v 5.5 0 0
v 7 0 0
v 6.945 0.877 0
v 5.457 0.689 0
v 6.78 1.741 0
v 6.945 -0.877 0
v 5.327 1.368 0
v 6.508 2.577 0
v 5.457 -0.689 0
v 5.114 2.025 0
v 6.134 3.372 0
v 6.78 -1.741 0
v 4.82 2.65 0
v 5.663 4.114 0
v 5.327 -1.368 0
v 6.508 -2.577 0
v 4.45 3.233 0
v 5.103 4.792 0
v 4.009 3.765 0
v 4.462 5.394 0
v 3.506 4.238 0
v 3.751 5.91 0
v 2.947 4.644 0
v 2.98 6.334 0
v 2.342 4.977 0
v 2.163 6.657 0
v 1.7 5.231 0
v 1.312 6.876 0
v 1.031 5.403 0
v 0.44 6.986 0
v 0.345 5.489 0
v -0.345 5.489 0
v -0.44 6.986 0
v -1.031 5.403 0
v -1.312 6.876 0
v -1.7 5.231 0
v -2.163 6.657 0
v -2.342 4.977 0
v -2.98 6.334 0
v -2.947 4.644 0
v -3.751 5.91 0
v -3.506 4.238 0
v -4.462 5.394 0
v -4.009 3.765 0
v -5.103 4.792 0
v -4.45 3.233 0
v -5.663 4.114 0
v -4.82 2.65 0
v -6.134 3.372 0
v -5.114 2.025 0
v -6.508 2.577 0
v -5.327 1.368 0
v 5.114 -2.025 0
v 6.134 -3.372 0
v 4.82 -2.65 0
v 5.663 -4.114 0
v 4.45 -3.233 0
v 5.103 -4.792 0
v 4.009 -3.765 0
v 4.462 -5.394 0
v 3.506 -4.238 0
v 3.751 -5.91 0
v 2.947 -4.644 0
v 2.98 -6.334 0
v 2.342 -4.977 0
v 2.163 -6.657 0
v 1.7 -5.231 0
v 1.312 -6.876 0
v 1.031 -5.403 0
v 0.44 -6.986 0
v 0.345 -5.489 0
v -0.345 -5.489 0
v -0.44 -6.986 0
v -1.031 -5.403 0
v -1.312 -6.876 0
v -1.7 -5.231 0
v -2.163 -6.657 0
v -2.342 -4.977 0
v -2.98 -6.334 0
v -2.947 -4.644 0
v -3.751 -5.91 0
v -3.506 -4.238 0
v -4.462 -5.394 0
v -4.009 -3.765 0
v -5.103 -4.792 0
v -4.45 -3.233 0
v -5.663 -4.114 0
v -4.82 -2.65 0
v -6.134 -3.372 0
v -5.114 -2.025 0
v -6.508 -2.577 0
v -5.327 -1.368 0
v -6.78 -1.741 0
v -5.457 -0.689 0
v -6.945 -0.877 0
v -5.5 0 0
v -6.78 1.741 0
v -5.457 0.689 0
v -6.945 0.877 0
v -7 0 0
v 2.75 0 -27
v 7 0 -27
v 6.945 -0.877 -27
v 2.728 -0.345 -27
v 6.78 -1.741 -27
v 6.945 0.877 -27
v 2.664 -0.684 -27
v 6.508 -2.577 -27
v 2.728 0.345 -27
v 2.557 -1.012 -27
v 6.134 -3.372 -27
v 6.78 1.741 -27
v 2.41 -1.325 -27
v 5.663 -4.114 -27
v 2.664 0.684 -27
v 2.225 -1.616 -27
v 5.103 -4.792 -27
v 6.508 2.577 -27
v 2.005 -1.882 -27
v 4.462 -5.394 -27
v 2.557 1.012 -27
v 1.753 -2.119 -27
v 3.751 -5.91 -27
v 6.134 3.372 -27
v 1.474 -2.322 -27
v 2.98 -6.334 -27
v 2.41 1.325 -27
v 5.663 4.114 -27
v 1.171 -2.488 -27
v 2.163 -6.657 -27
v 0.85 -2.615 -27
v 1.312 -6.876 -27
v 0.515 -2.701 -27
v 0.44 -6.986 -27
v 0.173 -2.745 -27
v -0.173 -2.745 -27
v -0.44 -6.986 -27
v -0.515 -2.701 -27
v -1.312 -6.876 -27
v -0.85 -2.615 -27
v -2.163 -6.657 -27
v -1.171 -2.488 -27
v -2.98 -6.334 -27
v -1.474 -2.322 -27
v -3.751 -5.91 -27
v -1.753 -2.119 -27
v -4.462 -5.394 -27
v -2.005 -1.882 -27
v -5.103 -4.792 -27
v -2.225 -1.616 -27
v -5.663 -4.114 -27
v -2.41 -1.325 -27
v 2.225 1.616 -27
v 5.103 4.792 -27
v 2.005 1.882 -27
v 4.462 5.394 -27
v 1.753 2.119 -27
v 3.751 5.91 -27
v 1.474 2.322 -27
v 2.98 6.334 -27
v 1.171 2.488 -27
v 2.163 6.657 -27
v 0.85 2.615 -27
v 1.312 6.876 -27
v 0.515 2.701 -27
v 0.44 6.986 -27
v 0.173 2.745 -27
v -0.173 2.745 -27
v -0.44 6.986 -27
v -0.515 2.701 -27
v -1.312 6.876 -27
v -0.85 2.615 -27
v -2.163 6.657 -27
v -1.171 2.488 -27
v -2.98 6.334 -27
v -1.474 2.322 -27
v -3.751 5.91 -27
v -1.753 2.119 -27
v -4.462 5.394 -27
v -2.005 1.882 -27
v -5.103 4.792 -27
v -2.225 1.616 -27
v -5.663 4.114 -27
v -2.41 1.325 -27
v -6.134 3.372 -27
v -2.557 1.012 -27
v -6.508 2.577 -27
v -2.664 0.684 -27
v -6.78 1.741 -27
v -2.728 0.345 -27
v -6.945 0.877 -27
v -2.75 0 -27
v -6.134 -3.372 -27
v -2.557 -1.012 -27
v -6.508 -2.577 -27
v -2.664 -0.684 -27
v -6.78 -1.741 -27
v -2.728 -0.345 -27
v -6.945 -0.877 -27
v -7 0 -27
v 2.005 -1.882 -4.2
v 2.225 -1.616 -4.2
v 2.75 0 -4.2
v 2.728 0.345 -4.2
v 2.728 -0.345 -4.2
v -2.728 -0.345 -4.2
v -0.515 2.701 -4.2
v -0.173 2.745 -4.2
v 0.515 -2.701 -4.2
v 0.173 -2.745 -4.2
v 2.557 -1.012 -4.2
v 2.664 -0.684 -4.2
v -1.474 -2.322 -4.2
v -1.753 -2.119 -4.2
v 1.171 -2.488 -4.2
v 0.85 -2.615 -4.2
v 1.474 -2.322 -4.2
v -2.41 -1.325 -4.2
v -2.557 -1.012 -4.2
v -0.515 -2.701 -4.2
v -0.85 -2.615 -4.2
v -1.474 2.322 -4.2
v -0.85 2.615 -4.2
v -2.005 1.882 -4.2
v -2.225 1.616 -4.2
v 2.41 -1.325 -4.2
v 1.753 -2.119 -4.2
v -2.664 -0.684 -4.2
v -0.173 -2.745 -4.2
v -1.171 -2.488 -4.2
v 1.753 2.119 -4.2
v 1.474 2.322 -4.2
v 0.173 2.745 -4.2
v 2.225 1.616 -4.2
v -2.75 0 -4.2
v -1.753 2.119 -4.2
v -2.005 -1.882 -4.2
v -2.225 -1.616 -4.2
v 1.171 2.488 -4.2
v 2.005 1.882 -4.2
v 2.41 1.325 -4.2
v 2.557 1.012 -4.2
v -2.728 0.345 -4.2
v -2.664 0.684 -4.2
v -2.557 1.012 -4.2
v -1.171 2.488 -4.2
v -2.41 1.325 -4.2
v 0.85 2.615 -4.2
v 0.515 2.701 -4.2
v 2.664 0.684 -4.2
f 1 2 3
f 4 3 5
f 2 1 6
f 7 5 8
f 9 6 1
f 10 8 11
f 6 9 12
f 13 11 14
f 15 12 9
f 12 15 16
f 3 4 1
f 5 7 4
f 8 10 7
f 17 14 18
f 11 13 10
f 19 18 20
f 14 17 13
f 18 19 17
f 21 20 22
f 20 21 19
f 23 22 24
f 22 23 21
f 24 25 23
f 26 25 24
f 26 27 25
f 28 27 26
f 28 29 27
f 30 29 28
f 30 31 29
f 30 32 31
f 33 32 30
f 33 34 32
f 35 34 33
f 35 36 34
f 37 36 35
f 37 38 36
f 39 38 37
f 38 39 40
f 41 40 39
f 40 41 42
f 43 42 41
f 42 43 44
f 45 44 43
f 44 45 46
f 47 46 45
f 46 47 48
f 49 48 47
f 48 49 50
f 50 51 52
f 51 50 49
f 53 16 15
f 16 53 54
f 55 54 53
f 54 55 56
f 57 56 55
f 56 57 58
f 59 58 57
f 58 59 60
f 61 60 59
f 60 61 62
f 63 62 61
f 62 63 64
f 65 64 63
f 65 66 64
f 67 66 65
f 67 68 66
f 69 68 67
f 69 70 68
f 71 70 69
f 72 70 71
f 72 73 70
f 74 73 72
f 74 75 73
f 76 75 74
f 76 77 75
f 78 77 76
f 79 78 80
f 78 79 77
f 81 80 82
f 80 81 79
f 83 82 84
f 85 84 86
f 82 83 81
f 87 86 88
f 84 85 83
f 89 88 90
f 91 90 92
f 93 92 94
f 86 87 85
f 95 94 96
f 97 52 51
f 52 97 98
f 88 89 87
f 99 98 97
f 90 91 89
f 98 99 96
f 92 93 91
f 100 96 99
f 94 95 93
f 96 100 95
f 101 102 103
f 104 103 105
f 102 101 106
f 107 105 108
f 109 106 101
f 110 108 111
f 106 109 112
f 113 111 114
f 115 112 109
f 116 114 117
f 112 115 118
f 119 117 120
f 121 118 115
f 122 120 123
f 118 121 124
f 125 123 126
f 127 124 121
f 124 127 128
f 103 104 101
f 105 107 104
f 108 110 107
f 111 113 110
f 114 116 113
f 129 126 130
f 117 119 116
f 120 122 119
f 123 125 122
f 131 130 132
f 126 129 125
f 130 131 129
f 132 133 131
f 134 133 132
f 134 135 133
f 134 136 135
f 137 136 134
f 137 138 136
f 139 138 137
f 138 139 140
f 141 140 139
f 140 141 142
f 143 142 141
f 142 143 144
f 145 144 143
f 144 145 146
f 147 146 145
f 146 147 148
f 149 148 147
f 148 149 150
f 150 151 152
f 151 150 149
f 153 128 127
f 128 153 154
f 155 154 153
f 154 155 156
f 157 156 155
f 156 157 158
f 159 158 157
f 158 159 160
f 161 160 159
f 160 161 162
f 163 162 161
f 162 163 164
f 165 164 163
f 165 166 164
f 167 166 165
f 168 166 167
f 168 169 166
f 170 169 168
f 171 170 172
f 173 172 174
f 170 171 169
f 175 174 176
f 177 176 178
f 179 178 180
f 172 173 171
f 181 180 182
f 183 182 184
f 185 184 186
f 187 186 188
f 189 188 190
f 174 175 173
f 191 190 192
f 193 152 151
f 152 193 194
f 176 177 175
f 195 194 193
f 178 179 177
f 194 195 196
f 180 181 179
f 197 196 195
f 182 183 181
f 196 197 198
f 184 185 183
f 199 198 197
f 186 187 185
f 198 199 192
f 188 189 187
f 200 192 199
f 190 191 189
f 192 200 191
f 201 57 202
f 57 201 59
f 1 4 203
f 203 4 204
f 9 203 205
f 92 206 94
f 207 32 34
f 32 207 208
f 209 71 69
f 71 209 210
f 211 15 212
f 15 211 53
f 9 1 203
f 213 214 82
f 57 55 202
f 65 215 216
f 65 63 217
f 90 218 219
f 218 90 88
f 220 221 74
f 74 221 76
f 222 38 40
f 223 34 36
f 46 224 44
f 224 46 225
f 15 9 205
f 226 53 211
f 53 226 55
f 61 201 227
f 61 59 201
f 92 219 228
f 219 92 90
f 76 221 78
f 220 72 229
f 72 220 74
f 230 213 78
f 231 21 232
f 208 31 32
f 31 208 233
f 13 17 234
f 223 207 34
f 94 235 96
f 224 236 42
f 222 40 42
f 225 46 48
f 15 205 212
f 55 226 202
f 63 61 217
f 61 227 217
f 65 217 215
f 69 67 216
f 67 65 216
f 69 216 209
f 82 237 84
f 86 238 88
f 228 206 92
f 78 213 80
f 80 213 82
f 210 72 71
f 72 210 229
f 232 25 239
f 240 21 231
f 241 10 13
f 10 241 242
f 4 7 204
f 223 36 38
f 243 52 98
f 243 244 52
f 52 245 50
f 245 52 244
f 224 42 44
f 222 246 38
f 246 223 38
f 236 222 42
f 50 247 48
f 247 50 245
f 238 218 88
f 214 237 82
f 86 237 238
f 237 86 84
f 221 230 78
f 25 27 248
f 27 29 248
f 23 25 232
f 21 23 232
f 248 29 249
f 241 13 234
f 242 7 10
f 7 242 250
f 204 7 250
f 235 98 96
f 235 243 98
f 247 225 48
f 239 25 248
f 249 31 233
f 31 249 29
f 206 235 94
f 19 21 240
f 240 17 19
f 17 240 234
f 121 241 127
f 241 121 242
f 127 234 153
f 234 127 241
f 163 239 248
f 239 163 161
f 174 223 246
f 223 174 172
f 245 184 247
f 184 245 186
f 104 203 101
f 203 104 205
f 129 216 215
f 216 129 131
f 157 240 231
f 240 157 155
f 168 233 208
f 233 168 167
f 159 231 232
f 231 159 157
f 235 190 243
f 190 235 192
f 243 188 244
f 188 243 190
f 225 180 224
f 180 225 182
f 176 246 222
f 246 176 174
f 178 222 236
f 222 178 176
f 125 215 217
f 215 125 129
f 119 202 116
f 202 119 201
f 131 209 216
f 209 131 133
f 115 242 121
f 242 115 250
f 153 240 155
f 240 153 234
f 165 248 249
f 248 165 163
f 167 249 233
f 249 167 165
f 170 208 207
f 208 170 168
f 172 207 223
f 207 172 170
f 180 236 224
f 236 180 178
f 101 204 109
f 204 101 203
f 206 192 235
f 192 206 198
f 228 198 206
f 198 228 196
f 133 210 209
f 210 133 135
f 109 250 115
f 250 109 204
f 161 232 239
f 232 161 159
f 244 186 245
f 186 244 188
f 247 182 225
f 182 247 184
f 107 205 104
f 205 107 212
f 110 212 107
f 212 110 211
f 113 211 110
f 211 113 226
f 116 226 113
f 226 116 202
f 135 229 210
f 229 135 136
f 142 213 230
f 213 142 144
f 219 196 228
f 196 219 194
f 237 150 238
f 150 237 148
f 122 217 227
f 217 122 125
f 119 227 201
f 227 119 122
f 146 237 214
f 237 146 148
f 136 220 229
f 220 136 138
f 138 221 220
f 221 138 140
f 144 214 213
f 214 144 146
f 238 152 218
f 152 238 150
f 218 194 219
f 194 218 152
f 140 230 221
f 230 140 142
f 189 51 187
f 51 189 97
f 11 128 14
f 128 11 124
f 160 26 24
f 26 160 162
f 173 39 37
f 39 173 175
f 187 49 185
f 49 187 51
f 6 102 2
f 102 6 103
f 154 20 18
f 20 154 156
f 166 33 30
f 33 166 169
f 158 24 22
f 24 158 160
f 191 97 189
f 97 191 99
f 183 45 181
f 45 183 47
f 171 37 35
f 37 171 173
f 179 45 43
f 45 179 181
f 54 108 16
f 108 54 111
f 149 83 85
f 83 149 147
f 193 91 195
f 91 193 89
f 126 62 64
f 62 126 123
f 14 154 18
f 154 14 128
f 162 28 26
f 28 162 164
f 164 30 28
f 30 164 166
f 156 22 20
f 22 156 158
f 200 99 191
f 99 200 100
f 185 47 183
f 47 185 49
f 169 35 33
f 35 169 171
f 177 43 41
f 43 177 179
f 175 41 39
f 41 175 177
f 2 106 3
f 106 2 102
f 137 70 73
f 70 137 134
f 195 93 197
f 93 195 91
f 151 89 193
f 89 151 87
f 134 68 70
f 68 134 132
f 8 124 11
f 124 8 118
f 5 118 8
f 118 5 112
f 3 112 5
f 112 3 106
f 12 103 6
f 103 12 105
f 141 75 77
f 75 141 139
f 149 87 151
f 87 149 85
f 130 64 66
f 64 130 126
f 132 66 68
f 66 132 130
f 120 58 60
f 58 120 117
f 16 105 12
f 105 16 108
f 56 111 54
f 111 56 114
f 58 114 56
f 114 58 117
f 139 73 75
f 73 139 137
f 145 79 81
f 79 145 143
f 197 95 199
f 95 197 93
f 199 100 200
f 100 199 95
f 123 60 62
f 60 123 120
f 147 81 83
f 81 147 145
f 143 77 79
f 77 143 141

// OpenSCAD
$fn = 50;


difference() {
	union() {
		translate(v = [0, 0, -27.0000000000]) {
			cylinder(h = 27, r = 7.0000000000);
		}
		cylinder(h = 0, r = 16.0000000000);
	}
	union() {
		translate(v = [0, 0, 0]) {
			rotate(a = [0, 0, 0]) {
				difference() {
					union() {
						#translate(v = [0, 0, -27.0000000000]) {
							cylinder(h = 27, r = 2.2500000000);
						}
						#translate(v = [0, 0, -4.2000000000]) {
							cylinder(h = 4.2000000000, r1 = 2.7500000000, r2 = 5.5000000000);
						}
						#translate(v = [0, 0, -27.0000000000]) {
							cylinder(h = 27, r = 2.7500000000);
						}
						#translate(v = [0, 0, -27.0000000000]) {
							cylinder(h = 27, r = 2.2500000000);
						}
					}
					union();
				}
			}
		}
	}
}
